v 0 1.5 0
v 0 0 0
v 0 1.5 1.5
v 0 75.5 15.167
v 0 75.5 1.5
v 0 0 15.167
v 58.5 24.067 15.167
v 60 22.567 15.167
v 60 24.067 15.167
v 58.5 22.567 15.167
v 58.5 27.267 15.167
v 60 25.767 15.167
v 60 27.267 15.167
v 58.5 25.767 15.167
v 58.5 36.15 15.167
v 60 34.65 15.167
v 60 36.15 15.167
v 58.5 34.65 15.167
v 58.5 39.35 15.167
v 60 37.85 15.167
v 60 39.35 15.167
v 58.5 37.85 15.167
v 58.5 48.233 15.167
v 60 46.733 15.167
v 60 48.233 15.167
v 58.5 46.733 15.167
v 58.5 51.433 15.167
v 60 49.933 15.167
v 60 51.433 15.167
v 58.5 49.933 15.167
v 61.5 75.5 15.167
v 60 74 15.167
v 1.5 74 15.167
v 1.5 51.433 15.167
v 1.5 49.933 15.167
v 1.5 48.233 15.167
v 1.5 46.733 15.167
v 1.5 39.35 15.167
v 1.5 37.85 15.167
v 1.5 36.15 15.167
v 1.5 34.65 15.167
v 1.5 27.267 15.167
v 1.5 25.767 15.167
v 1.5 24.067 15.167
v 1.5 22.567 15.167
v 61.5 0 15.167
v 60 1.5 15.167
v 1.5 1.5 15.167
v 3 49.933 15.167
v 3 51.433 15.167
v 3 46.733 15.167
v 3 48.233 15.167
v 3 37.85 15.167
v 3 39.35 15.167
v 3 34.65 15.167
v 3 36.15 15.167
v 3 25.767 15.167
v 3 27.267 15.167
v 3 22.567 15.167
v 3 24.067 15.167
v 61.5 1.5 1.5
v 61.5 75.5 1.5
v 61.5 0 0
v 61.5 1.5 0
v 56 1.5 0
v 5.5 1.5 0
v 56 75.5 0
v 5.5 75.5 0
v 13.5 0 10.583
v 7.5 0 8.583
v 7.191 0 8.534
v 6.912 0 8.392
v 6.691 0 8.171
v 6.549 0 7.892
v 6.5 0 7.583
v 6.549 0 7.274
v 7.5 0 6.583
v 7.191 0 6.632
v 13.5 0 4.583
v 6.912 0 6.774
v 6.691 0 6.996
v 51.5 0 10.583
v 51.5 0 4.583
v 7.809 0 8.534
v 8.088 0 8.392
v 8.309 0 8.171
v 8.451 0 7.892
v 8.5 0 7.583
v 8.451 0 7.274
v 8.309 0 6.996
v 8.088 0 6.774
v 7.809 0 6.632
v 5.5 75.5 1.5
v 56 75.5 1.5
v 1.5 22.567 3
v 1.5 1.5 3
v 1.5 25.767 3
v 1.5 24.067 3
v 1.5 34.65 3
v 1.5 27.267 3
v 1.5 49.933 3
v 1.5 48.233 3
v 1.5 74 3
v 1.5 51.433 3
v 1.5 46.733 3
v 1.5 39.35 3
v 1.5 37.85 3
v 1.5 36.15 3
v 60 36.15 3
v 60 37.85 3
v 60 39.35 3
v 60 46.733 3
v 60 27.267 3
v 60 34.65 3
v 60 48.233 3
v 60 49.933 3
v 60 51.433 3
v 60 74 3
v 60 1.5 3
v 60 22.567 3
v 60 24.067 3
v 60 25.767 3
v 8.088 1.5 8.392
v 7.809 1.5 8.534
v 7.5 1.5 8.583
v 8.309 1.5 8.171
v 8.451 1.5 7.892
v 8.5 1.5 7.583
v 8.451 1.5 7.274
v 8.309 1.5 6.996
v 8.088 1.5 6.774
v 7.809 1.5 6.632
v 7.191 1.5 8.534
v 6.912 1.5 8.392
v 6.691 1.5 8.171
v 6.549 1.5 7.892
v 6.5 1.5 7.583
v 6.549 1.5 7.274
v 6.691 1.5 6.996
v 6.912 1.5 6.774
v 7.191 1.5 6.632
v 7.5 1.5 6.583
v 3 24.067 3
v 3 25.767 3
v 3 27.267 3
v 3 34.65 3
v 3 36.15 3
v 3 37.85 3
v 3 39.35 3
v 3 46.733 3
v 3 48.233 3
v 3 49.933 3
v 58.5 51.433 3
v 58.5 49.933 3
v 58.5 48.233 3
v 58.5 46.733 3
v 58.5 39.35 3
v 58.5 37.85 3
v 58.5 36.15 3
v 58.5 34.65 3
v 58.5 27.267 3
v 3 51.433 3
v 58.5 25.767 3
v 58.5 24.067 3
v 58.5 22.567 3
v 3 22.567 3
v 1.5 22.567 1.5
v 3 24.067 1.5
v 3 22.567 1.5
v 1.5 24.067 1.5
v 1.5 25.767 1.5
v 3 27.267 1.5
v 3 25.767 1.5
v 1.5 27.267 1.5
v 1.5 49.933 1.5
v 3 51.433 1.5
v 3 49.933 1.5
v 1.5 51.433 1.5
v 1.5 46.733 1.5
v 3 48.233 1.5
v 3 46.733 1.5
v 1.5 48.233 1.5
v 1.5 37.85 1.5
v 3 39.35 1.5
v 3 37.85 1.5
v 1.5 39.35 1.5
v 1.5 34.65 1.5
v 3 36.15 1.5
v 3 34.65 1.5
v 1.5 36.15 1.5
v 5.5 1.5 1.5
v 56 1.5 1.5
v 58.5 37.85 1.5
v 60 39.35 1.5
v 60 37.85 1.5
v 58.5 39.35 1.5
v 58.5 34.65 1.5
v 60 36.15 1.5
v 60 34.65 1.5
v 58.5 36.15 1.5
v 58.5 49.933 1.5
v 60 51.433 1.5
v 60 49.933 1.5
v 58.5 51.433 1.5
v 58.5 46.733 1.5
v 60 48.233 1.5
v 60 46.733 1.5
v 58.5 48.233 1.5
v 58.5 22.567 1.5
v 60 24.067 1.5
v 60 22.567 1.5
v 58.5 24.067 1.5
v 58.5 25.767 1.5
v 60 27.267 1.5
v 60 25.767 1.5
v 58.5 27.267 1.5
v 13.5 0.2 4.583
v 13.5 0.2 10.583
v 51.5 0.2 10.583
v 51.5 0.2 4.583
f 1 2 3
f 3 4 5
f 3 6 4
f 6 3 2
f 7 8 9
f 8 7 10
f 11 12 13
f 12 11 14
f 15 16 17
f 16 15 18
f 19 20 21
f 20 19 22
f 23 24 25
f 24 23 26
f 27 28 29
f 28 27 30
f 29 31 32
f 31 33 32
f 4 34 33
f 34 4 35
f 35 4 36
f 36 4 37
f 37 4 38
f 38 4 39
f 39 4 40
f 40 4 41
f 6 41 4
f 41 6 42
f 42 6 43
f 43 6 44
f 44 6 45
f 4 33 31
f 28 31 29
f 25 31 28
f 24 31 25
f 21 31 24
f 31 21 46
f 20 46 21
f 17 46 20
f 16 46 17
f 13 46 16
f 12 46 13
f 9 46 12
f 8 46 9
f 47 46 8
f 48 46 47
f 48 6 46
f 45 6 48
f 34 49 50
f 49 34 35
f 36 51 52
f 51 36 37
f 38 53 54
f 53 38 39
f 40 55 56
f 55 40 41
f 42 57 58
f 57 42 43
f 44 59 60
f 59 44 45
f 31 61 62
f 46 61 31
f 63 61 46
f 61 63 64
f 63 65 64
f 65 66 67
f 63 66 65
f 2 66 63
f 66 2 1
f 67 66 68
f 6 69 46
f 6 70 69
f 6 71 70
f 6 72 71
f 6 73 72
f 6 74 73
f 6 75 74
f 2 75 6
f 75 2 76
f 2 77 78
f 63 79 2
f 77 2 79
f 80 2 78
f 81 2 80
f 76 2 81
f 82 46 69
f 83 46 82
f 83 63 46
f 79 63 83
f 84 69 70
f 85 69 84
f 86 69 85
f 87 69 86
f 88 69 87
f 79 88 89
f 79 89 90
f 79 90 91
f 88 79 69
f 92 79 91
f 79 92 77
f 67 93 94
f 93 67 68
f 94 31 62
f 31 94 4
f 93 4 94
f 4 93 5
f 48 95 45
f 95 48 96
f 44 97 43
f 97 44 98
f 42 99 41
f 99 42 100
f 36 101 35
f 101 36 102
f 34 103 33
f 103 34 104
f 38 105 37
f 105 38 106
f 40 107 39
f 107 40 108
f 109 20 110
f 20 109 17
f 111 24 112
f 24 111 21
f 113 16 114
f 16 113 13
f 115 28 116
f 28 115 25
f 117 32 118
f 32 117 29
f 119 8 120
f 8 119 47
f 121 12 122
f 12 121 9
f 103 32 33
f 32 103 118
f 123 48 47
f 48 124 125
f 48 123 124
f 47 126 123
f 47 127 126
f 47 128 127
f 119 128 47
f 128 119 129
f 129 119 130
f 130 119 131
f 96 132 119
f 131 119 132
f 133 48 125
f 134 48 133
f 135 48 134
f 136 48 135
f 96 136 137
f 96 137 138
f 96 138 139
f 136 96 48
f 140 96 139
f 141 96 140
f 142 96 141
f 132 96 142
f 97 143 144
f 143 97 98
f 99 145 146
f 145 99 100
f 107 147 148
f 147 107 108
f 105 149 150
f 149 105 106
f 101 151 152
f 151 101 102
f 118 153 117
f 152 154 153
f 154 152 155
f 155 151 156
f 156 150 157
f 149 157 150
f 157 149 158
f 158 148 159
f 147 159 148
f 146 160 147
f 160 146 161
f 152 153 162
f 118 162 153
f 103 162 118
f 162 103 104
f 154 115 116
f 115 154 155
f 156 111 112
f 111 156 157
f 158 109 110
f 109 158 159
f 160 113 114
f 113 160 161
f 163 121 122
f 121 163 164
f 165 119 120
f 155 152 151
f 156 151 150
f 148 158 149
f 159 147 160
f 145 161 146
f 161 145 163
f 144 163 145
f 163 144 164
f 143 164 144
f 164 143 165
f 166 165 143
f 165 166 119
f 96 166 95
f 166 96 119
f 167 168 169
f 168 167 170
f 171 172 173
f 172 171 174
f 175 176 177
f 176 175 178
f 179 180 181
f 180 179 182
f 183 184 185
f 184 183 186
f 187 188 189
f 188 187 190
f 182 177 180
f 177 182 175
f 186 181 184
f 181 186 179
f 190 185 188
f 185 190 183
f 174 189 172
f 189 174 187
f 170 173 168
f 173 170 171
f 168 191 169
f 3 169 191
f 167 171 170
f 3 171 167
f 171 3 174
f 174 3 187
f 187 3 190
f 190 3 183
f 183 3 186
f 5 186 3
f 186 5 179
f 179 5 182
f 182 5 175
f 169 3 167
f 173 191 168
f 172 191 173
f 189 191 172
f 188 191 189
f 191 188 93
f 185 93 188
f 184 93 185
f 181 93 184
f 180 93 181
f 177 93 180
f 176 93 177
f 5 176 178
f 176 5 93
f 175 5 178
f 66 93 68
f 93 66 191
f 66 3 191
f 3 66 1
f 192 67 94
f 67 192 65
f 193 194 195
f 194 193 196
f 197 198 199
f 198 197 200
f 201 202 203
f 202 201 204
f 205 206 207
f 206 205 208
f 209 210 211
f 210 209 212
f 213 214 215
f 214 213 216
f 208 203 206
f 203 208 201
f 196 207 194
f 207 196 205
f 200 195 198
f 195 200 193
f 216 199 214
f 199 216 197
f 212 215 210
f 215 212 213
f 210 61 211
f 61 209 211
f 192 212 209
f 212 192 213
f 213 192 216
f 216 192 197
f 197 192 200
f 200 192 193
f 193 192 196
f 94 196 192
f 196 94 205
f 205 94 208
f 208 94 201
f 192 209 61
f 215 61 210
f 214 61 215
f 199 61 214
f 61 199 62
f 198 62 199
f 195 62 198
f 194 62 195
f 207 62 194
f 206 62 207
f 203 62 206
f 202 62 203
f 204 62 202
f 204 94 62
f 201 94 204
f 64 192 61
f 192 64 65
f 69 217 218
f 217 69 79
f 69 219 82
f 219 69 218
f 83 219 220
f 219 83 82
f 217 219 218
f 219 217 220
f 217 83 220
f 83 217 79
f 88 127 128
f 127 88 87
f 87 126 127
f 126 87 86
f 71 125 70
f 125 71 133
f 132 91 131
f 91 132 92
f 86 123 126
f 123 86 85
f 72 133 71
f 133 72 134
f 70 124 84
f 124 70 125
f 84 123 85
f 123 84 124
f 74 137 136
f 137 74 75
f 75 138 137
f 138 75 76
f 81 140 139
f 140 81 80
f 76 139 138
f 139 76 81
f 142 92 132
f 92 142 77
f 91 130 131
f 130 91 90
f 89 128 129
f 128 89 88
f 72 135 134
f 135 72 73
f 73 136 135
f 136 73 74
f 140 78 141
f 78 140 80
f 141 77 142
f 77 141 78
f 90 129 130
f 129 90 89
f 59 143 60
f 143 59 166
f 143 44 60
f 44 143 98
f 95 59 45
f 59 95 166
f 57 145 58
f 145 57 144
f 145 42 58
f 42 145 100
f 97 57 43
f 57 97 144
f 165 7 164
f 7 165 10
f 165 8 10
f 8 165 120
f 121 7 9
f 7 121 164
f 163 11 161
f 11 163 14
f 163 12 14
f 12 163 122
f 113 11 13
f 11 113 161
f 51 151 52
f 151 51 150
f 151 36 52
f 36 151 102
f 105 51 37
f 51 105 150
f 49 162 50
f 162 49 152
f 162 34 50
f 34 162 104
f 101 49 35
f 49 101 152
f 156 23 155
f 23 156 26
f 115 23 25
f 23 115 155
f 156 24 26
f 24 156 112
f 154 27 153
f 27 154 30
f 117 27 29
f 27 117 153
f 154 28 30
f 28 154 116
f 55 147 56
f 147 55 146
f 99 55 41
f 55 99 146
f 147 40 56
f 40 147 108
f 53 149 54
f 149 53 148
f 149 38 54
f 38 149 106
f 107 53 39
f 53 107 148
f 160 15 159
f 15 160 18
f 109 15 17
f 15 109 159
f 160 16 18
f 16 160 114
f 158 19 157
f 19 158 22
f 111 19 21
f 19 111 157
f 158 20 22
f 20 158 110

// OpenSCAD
// file: wallbox_drawer.scad
$fn=20;

//module drawer(wb_width, wb_depth, wb_height, wb_thickness) {


module drawer(drawer_width, drawer_depth, drawer_height, wb_thickness) {

    difference() {
        union() {

            // Create the drawer corpus by differencing one cube from another
            difference() {

                cube([drawer_width, drawer_depth, drawer_height]);

                translate([wb_thickness, wb_thickness, wb_thickness])
                cube([drawer_width - wb_thickness * 2,drawer_depth - wb_thickness * 2, drawer_height]);
            }

            // Reinforce the bottom
            cube([drawer_width, drawer_depth, wb_thickness * 2]);
        }

        // Lowering the running rail left
        color("red")
        translate([-1, wb_thickness, -1])
        cube([6.5, drawer_depth - wb_thickness + 1, wb_thickness + 1]);

        // Lowering the running rail right
        color("red")
        translate([drawer_width - 5.5, wb_thickness, -1])
        cube([6.5, drawer_depth - wb_thickness + 1, wb_thickness + 1]);

        // Create the insert for the label
        color("red")
        translate([drawer_width - 38 -10, -0.8, drawer_height / 2 - 3])
        // Labels are 37mmx5mm
        cube([38, 1, 6]);

        // Drill the hole for the knob
        color("red")
        translate([7.5,wb_thickness + 1, drawer_height / 2])
        rotate([90,0,0])
        cylinder(h= wb_thickness + 2, r=1);

    }

    holder_distance_third=(drawer_depth-wb_thickness-wb_thickness)/3;
    holder_distance_half=(drawer_depth-wb_thickness-wb_thickness)/2;

    // Create the holder at the bottom
    color("white")
    translate([wb_thickness, holder_distance_third - wb_thickness - 0.1, wb_thickness])
    cube([wb_thickness, wb_thickness, drawer_height - wb_thickness]);

    color("white")
    translate([wb_thickness, holder_distance_third + wb_thickness + 0.1, wb_thickness])
    cube([wb_thickness, wb_thickness, drawer_height - wb_thickness]);

    color("white")
    translate([drawer_width - wb_thickness * 2, holder_distance_third - wb_thickness - 0.1, wb_thickness])
    cube([wb_thickness, wb_thickness, drawer_height - wb_thickness]);

    color("white")
    translate([drawer_width - wb_thickness * 2, holder_distance_third + wb_thickness + 0.1, wb_thickness])
    cube([wb_thickness, wb_thickness, drawer_height - wb_thickness]);

    // Create the holder at the top
    color("white")
    translate([wb_thickness, holder_distance_third * 2 - wb_thickness - 0.1, wb_thickness])
    cube([wb_thickness, wb_thickness, drawer_height - wb_thickness]);

    color("white")
    translate([wb_thickness, holder_distance_third * 2 + wb_thickness + 0.1, wb_thickness])
    cube([wb_thickness, wb_thickness, drawer_height - wb_thickness]);

    color("white")
    translate([drawer_width - wb_thickness * 2, holder_distance_third * 2 - wb_thickness - 0.1, wb_thickness])
    cube([wb_thickness, wb_thickness, drawer_height - wb_thickness]);

    color("white")
    translate([drawer_width - wb_thickness * 2, holder_distance_third * 2 + wb_thickness + 0.1, wb_thickness])
    cube([wb_thickness, wb_thickness, drawer_height - wb_thickness]);


    // Create the holder in the middle
    color("white")
    translate([wb_thickness, holder_distance_half - wb_thickness - 0.1, wb_thickness])
    cube([wb_thickness, wb_thickness, drawer_height - wb_thickness]);

    color("white")
    translate([wb_thickness, holder_distance_half + wb_thickness + 0.1, wb_thickness])
    cube([wb_thickness, wb_thickness, drawer_height - wb_thickness]);

    color("white")
    translate([drawer_width - wb_thickness * 2, holder_distance_half - wb_thickness - 0.1, wb_thickness])
    cube([wb_thickness, wb_thickness, drawer_height - wb_thickness]);

    color("white")
    translate([drawer_width - wb_thickness * 2, holder_distance_half + wb_thickness + 0.1, wb_thickness])
    cube([wb_thickness, wb_thickness, drawer_height - wb_thickness]);
}
// main file
// The measure of the box
wb_width=65;            // Original: 65
wb_depth=50;            // Original: 50
wb_height=80;           // Original: 80
wb_thickness=1.5;       // Original: 1.5

use <./wallbox_drawer.scad>

// Meeasures of the drawer, calculated on the base of the wallbox
drawer_height=(wb_depth-wb_thickness-wb_thickness)/3-0.5;
drawer_depth=wb_height - wb_thickness - 3;
drawer_width=wb_width-wb_thickness * 2 - 0.5;

drawer(drawer_width, drawer_depth, drawer_height, wb_thickness);
